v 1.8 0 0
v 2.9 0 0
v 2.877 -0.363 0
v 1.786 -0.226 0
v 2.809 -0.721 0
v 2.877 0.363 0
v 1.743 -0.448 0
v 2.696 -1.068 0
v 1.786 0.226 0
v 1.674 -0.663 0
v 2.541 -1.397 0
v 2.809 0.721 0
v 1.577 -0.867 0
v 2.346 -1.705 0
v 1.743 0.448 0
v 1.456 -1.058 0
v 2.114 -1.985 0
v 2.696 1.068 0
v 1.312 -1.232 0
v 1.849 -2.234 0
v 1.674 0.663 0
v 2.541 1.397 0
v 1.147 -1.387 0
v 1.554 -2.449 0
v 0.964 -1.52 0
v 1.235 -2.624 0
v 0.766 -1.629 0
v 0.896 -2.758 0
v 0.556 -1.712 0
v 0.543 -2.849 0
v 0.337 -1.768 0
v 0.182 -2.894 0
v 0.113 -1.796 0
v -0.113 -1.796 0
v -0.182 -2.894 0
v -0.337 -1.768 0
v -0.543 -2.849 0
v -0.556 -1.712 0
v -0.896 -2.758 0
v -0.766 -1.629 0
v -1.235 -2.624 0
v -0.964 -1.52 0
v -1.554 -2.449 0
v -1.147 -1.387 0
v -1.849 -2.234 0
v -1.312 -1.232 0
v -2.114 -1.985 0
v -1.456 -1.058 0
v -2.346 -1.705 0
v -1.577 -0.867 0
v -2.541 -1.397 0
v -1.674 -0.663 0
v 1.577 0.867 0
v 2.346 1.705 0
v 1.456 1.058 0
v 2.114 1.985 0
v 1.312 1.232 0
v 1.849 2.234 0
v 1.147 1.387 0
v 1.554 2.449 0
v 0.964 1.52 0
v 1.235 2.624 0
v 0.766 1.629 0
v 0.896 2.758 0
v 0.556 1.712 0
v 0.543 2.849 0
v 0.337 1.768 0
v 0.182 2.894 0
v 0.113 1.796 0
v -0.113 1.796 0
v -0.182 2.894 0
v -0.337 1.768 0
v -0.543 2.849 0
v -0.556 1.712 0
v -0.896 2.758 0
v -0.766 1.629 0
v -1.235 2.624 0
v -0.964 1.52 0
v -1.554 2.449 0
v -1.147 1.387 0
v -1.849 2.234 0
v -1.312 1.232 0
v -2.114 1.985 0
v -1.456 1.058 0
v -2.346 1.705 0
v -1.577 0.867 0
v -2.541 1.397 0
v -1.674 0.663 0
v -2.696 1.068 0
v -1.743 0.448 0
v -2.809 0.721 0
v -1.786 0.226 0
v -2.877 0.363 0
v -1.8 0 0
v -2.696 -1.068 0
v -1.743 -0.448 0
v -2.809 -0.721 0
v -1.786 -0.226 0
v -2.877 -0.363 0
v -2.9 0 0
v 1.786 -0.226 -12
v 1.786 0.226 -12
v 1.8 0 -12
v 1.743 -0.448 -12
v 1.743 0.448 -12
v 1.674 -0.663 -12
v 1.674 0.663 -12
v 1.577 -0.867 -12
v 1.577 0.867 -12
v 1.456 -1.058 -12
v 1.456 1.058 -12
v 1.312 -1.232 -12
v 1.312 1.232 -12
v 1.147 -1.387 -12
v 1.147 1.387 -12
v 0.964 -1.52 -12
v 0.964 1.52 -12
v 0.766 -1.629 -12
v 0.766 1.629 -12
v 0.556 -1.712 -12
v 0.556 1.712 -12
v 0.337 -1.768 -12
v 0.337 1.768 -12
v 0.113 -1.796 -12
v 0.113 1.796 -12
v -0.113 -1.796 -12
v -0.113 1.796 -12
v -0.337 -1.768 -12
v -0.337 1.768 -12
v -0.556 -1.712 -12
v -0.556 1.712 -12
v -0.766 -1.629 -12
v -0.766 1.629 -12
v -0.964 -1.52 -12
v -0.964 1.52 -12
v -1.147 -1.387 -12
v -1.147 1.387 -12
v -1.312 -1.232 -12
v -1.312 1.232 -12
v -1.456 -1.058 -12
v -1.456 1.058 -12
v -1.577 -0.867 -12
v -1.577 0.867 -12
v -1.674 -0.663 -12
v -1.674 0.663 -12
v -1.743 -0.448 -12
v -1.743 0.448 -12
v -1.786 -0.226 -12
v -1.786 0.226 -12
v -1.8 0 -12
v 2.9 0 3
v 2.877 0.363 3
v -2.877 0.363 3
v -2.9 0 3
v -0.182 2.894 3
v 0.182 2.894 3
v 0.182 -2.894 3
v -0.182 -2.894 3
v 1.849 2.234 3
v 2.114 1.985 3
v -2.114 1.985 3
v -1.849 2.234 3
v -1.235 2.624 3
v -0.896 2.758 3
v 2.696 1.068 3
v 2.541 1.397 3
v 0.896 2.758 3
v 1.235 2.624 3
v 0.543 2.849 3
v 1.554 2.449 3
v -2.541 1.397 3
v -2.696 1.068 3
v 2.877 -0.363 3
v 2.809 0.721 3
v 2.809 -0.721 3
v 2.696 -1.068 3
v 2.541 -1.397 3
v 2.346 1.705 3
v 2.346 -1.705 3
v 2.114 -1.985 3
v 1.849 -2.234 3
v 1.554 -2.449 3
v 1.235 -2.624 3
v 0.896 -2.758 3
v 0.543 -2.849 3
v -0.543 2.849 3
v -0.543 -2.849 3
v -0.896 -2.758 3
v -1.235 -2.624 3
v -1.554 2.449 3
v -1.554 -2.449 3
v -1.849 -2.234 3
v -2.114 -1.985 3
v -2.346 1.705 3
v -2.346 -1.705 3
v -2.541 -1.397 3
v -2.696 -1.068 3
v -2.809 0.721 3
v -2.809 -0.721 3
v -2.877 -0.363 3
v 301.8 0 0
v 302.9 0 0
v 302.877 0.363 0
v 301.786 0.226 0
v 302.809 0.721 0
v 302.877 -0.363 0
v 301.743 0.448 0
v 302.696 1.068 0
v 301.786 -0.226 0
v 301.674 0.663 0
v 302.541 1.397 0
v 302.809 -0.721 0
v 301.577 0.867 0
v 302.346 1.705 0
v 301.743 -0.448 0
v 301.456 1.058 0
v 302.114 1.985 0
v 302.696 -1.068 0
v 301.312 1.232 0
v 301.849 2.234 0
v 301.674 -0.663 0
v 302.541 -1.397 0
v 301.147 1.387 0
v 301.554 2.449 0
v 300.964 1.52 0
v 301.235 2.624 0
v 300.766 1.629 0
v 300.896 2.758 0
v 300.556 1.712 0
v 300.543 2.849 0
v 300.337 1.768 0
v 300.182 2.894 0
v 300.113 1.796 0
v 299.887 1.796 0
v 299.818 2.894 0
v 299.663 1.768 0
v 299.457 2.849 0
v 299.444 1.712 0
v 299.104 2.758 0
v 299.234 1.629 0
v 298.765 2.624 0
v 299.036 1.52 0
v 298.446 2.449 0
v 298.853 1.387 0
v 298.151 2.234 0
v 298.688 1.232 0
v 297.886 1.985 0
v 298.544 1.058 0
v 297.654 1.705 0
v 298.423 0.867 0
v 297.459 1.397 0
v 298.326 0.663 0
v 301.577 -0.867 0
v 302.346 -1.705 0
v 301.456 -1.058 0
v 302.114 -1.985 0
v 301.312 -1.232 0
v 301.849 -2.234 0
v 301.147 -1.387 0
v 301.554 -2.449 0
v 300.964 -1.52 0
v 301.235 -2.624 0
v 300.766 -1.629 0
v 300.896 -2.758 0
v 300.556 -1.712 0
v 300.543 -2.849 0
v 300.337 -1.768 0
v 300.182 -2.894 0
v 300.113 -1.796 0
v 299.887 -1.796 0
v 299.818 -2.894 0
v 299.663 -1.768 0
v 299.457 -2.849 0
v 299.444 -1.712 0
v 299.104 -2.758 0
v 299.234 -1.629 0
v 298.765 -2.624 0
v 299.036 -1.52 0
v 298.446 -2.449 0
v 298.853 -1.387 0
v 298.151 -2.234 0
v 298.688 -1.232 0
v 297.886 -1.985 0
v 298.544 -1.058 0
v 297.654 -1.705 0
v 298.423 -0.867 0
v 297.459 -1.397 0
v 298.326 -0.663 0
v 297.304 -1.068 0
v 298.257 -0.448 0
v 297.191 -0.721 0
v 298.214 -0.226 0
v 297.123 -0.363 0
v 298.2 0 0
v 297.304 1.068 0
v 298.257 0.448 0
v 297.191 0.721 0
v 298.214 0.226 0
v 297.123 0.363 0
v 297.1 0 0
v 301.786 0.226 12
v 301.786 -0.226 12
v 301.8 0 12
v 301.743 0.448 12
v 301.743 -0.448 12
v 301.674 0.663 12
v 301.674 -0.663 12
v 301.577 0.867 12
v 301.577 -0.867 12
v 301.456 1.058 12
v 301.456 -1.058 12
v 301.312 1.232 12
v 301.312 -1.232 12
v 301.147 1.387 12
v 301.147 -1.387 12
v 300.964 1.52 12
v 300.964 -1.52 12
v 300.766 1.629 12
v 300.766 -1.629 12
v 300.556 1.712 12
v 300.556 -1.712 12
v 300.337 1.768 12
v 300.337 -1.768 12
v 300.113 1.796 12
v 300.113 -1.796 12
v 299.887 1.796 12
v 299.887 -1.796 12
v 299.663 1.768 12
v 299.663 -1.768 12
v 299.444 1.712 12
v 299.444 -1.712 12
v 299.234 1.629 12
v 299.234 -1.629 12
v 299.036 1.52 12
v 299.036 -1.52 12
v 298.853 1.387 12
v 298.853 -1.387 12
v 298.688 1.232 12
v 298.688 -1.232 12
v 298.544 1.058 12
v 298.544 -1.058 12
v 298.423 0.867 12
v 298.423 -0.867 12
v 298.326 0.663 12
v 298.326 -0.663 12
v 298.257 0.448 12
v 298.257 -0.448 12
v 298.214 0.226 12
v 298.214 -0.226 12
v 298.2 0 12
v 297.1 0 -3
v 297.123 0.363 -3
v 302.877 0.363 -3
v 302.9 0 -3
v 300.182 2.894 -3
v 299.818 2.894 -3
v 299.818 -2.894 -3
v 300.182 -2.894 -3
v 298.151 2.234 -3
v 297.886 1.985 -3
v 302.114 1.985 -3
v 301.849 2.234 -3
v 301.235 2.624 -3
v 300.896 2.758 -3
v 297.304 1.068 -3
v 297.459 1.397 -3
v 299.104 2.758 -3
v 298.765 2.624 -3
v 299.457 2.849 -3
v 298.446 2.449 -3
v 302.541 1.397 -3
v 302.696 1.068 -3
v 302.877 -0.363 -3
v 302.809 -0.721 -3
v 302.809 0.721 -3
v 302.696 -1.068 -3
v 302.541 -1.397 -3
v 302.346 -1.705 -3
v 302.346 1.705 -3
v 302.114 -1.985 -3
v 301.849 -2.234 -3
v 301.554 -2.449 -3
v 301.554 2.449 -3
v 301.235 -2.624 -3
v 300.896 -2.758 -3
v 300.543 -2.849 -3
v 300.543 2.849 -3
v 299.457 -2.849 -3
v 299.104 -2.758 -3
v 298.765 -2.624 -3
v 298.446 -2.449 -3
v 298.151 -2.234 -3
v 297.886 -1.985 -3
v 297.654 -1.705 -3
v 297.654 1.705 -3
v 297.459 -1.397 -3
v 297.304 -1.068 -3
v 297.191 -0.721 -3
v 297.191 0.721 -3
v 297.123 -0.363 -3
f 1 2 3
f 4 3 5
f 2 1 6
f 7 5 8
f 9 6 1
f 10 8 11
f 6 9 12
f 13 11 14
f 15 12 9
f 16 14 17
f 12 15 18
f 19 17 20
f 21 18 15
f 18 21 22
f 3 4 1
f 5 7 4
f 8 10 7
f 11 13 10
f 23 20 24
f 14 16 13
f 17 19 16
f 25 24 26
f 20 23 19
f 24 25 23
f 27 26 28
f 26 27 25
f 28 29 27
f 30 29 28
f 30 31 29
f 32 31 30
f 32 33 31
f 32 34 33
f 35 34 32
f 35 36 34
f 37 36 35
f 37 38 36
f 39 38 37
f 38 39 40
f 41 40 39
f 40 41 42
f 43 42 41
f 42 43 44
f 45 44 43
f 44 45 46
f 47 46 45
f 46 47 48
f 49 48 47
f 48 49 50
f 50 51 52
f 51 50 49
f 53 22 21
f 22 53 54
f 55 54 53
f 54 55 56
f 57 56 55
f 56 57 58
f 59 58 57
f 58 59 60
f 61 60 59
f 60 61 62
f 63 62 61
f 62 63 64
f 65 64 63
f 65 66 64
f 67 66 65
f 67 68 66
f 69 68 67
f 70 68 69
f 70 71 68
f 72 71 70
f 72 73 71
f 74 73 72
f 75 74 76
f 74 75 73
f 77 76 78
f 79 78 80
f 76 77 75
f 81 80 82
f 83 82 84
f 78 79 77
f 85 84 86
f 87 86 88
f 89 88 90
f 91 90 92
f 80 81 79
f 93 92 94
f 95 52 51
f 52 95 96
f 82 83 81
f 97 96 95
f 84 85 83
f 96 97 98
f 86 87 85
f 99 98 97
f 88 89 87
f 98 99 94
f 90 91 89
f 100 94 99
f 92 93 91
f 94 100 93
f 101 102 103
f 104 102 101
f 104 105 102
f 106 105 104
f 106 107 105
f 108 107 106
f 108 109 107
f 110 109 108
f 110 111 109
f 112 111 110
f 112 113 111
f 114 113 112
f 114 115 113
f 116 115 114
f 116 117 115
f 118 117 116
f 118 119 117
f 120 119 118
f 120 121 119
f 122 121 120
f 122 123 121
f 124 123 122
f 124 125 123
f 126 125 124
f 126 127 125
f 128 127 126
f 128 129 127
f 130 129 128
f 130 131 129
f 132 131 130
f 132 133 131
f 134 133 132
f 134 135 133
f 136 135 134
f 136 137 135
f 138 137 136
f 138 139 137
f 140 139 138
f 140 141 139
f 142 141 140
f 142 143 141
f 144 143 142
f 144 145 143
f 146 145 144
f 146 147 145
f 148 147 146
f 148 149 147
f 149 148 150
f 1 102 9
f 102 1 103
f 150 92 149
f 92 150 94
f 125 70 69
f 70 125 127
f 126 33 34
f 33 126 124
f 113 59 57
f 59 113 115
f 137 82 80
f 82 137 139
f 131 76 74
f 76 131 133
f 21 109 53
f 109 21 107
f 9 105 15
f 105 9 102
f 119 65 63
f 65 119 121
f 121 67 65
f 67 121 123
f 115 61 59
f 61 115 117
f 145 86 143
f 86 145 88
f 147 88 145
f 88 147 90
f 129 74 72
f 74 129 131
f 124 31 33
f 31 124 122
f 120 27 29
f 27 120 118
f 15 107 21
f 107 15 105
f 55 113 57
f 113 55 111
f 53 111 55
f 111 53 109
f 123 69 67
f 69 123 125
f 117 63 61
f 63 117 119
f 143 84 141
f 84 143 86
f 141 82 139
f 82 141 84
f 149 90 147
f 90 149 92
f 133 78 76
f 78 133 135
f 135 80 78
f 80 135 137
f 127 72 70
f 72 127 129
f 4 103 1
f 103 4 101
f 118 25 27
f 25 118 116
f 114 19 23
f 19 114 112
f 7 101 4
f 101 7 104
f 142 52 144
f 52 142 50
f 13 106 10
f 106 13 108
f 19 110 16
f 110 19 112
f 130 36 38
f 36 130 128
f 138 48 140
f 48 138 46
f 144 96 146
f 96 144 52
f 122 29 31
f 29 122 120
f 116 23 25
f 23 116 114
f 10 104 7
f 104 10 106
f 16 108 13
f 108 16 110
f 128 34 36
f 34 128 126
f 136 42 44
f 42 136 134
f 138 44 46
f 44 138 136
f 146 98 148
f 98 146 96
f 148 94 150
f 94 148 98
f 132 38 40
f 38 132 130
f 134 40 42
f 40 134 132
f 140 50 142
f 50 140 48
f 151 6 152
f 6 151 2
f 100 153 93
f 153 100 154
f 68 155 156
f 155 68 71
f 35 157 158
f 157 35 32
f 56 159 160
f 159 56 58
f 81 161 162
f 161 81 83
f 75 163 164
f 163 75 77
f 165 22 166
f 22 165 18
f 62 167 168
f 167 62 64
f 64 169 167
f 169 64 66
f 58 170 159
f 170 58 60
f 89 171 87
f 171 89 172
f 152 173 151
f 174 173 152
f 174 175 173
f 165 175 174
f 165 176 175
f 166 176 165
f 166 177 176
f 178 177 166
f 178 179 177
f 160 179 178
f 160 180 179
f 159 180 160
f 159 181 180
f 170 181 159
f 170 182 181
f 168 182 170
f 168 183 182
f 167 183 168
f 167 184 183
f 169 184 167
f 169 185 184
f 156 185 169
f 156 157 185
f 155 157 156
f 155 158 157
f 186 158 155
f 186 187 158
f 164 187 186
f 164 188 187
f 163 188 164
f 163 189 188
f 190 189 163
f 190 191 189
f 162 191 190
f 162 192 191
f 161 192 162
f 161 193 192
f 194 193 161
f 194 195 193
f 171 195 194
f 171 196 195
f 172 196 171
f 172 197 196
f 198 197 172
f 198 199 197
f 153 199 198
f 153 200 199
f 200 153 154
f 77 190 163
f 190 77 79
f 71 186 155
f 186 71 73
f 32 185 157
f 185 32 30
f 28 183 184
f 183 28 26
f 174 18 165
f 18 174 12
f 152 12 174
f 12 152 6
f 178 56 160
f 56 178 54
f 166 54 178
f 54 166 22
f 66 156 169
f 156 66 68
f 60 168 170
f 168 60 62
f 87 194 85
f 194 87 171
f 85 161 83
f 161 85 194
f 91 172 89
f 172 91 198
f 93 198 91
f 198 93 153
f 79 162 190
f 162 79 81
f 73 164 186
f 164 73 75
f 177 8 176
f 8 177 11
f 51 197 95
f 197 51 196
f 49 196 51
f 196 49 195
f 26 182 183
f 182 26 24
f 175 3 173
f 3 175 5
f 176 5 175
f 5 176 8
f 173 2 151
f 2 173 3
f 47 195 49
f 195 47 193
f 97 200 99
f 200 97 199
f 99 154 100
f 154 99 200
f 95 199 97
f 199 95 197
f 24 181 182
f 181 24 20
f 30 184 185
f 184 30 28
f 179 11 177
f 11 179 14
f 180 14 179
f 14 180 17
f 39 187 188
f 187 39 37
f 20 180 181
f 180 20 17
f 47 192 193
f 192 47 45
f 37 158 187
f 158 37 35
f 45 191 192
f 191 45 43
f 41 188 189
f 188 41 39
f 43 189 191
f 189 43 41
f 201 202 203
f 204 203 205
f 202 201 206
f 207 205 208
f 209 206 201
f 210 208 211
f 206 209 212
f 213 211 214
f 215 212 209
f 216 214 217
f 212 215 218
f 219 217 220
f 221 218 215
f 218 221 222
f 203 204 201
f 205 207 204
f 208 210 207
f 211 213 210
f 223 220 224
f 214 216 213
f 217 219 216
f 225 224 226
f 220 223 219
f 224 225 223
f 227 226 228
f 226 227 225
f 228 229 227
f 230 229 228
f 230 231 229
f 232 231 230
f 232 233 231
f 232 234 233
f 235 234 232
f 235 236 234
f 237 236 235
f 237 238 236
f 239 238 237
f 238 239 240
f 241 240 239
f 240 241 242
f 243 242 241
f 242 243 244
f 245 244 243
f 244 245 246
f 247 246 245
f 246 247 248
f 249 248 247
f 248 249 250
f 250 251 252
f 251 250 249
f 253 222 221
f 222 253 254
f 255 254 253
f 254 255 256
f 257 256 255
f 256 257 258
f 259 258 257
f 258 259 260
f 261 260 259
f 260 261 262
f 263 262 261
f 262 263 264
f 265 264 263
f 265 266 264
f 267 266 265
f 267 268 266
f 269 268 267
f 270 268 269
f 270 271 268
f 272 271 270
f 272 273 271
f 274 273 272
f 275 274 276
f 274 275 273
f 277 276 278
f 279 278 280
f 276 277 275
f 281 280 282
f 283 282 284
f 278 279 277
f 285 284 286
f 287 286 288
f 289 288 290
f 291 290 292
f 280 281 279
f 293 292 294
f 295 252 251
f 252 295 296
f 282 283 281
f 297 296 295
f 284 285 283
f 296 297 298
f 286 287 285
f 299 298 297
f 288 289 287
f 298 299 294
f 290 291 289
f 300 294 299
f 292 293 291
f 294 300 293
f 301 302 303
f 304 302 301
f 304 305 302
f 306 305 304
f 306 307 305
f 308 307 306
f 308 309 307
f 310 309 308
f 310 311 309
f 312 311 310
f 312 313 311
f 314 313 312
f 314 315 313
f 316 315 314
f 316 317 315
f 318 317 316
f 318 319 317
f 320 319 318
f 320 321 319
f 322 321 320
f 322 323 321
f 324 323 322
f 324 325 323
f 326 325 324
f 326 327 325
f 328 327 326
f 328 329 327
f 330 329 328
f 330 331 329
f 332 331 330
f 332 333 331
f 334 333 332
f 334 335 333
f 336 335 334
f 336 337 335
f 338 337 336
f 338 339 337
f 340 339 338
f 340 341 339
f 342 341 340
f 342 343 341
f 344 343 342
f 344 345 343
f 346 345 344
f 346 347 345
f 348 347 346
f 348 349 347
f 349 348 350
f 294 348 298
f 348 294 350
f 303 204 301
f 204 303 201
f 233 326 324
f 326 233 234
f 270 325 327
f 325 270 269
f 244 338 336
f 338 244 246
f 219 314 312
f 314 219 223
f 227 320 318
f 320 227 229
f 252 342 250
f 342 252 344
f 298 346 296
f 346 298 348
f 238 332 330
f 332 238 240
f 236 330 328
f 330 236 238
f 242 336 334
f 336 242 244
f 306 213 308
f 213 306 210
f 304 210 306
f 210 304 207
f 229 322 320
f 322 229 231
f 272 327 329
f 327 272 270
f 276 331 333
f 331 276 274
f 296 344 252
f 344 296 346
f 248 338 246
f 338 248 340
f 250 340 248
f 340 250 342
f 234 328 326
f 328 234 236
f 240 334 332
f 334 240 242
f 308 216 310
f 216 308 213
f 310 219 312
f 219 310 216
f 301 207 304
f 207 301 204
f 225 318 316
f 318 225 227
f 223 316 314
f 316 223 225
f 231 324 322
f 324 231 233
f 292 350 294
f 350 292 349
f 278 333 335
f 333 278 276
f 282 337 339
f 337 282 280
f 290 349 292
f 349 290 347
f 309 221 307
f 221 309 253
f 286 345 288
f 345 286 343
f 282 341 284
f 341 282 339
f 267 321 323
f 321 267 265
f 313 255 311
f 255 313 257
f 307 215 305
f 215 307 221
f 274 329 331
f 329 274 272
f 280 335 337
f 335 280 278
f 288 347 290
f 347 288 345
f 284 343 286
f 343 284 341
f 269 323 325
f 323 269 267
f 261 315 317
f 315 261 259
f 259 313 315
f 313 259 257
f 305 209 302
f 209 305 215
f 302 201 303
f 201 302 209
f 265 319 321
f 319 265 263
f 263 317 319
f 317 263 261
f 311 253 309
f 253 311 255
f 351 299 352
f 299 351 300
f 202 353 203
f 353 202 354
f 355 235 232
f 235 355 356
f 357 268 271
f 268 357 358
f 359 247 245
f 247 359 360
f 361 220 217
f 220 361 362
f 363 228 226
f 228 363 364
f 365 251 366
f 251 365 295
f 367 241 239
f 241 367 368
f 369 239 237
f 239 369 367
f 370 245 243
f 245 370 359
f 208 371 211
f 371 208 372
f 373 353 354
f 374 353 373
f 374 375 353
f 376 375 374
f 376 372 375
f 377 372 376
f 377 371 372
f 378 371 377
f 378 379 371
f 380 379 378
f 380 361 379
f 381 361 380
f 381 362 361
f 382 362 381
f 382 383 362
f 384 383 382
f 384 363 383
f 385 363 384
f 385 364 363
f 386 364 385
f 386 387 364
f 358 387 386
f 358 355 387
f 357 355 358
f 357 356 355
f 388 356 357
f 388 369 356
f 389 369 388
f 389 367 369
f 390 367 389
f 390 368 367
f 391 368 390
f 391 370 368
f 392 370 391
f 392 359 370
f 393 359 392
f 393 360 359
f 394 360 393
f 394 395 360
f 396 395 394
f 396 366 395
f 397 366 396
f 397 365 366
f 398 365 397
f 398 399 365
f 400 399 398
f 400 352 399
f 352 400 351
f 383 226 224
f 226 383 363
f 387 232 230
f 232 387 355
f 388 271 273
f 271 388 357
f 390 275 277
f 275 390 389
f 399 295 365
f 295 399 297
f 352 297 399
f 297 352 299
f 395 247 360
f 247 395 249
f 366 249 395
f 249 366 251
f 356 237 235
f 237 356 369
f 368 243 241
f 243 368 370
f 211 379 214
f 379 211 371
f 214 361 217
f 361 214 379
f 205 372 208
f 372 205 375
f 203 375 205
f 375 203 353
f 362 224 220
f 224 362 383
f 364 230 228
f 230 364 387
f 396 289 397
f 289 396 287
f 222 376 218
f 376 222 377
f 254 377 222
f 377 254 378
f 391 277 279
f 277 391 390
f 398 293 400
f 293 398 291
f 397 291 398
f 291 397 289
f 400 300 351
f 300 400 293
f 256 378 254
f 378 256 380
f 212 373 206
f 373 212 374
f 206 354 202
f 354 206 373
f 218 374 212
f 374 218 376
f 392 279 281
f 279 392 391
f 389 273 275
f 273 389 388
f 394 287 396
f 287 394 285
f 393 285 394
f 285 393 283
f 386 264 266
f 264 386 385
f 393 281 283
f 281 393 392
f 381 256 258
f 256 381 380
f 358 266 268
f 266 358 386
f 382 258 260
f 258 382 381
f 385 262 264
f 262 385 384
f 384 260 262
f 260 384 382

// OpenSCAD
$fn = 50;


difference() {
	union() {
		translate(v = [0, 0, 0]) {
			rotate(a = [0, 0, 0]) {
				difference() {
					union() {
						translate(v = [0, 0, -12.0000000000]) {
							cylinder(h = 12.0000000000, r = 1.5000000000);
						}
						translate(v = [0, 0, -12.0000000000]) {
							cylinder(h = 12.0000000000, r = 1.8000000000);
						}
						cylinder(h = 3, r = 2.9000000000);
						translate(v = [0, 0, -12.0000000000]) {
							cylinder(h = 12.0000000000, r = 1.5000000000);
						}
					}
					union();
				}
			}
		}
		translate(v = [300, 0, 0]) {
			rotate(a = [0, 180, 0]) {
				difference() {
					union() {
						translate(v = [0, 0, -12.0000000000]) {
							cylinder(h = 12.0000000000, r = 1.5000000000);
						}
						translate(v = [0, 0, -12.0000000000]) {
							cylinder(h = 12.0000000000, r = 1.8000000000);
						}
						cylinder(h = 3, r = 2.9000000000);
						translate(v = [0, 0, -12.0000000000]) {
							cylinder(h = 12.0000000000, r = 1.5000000000);
						}
					}
					union();
				}
			}
		}
	}
	union();
}
